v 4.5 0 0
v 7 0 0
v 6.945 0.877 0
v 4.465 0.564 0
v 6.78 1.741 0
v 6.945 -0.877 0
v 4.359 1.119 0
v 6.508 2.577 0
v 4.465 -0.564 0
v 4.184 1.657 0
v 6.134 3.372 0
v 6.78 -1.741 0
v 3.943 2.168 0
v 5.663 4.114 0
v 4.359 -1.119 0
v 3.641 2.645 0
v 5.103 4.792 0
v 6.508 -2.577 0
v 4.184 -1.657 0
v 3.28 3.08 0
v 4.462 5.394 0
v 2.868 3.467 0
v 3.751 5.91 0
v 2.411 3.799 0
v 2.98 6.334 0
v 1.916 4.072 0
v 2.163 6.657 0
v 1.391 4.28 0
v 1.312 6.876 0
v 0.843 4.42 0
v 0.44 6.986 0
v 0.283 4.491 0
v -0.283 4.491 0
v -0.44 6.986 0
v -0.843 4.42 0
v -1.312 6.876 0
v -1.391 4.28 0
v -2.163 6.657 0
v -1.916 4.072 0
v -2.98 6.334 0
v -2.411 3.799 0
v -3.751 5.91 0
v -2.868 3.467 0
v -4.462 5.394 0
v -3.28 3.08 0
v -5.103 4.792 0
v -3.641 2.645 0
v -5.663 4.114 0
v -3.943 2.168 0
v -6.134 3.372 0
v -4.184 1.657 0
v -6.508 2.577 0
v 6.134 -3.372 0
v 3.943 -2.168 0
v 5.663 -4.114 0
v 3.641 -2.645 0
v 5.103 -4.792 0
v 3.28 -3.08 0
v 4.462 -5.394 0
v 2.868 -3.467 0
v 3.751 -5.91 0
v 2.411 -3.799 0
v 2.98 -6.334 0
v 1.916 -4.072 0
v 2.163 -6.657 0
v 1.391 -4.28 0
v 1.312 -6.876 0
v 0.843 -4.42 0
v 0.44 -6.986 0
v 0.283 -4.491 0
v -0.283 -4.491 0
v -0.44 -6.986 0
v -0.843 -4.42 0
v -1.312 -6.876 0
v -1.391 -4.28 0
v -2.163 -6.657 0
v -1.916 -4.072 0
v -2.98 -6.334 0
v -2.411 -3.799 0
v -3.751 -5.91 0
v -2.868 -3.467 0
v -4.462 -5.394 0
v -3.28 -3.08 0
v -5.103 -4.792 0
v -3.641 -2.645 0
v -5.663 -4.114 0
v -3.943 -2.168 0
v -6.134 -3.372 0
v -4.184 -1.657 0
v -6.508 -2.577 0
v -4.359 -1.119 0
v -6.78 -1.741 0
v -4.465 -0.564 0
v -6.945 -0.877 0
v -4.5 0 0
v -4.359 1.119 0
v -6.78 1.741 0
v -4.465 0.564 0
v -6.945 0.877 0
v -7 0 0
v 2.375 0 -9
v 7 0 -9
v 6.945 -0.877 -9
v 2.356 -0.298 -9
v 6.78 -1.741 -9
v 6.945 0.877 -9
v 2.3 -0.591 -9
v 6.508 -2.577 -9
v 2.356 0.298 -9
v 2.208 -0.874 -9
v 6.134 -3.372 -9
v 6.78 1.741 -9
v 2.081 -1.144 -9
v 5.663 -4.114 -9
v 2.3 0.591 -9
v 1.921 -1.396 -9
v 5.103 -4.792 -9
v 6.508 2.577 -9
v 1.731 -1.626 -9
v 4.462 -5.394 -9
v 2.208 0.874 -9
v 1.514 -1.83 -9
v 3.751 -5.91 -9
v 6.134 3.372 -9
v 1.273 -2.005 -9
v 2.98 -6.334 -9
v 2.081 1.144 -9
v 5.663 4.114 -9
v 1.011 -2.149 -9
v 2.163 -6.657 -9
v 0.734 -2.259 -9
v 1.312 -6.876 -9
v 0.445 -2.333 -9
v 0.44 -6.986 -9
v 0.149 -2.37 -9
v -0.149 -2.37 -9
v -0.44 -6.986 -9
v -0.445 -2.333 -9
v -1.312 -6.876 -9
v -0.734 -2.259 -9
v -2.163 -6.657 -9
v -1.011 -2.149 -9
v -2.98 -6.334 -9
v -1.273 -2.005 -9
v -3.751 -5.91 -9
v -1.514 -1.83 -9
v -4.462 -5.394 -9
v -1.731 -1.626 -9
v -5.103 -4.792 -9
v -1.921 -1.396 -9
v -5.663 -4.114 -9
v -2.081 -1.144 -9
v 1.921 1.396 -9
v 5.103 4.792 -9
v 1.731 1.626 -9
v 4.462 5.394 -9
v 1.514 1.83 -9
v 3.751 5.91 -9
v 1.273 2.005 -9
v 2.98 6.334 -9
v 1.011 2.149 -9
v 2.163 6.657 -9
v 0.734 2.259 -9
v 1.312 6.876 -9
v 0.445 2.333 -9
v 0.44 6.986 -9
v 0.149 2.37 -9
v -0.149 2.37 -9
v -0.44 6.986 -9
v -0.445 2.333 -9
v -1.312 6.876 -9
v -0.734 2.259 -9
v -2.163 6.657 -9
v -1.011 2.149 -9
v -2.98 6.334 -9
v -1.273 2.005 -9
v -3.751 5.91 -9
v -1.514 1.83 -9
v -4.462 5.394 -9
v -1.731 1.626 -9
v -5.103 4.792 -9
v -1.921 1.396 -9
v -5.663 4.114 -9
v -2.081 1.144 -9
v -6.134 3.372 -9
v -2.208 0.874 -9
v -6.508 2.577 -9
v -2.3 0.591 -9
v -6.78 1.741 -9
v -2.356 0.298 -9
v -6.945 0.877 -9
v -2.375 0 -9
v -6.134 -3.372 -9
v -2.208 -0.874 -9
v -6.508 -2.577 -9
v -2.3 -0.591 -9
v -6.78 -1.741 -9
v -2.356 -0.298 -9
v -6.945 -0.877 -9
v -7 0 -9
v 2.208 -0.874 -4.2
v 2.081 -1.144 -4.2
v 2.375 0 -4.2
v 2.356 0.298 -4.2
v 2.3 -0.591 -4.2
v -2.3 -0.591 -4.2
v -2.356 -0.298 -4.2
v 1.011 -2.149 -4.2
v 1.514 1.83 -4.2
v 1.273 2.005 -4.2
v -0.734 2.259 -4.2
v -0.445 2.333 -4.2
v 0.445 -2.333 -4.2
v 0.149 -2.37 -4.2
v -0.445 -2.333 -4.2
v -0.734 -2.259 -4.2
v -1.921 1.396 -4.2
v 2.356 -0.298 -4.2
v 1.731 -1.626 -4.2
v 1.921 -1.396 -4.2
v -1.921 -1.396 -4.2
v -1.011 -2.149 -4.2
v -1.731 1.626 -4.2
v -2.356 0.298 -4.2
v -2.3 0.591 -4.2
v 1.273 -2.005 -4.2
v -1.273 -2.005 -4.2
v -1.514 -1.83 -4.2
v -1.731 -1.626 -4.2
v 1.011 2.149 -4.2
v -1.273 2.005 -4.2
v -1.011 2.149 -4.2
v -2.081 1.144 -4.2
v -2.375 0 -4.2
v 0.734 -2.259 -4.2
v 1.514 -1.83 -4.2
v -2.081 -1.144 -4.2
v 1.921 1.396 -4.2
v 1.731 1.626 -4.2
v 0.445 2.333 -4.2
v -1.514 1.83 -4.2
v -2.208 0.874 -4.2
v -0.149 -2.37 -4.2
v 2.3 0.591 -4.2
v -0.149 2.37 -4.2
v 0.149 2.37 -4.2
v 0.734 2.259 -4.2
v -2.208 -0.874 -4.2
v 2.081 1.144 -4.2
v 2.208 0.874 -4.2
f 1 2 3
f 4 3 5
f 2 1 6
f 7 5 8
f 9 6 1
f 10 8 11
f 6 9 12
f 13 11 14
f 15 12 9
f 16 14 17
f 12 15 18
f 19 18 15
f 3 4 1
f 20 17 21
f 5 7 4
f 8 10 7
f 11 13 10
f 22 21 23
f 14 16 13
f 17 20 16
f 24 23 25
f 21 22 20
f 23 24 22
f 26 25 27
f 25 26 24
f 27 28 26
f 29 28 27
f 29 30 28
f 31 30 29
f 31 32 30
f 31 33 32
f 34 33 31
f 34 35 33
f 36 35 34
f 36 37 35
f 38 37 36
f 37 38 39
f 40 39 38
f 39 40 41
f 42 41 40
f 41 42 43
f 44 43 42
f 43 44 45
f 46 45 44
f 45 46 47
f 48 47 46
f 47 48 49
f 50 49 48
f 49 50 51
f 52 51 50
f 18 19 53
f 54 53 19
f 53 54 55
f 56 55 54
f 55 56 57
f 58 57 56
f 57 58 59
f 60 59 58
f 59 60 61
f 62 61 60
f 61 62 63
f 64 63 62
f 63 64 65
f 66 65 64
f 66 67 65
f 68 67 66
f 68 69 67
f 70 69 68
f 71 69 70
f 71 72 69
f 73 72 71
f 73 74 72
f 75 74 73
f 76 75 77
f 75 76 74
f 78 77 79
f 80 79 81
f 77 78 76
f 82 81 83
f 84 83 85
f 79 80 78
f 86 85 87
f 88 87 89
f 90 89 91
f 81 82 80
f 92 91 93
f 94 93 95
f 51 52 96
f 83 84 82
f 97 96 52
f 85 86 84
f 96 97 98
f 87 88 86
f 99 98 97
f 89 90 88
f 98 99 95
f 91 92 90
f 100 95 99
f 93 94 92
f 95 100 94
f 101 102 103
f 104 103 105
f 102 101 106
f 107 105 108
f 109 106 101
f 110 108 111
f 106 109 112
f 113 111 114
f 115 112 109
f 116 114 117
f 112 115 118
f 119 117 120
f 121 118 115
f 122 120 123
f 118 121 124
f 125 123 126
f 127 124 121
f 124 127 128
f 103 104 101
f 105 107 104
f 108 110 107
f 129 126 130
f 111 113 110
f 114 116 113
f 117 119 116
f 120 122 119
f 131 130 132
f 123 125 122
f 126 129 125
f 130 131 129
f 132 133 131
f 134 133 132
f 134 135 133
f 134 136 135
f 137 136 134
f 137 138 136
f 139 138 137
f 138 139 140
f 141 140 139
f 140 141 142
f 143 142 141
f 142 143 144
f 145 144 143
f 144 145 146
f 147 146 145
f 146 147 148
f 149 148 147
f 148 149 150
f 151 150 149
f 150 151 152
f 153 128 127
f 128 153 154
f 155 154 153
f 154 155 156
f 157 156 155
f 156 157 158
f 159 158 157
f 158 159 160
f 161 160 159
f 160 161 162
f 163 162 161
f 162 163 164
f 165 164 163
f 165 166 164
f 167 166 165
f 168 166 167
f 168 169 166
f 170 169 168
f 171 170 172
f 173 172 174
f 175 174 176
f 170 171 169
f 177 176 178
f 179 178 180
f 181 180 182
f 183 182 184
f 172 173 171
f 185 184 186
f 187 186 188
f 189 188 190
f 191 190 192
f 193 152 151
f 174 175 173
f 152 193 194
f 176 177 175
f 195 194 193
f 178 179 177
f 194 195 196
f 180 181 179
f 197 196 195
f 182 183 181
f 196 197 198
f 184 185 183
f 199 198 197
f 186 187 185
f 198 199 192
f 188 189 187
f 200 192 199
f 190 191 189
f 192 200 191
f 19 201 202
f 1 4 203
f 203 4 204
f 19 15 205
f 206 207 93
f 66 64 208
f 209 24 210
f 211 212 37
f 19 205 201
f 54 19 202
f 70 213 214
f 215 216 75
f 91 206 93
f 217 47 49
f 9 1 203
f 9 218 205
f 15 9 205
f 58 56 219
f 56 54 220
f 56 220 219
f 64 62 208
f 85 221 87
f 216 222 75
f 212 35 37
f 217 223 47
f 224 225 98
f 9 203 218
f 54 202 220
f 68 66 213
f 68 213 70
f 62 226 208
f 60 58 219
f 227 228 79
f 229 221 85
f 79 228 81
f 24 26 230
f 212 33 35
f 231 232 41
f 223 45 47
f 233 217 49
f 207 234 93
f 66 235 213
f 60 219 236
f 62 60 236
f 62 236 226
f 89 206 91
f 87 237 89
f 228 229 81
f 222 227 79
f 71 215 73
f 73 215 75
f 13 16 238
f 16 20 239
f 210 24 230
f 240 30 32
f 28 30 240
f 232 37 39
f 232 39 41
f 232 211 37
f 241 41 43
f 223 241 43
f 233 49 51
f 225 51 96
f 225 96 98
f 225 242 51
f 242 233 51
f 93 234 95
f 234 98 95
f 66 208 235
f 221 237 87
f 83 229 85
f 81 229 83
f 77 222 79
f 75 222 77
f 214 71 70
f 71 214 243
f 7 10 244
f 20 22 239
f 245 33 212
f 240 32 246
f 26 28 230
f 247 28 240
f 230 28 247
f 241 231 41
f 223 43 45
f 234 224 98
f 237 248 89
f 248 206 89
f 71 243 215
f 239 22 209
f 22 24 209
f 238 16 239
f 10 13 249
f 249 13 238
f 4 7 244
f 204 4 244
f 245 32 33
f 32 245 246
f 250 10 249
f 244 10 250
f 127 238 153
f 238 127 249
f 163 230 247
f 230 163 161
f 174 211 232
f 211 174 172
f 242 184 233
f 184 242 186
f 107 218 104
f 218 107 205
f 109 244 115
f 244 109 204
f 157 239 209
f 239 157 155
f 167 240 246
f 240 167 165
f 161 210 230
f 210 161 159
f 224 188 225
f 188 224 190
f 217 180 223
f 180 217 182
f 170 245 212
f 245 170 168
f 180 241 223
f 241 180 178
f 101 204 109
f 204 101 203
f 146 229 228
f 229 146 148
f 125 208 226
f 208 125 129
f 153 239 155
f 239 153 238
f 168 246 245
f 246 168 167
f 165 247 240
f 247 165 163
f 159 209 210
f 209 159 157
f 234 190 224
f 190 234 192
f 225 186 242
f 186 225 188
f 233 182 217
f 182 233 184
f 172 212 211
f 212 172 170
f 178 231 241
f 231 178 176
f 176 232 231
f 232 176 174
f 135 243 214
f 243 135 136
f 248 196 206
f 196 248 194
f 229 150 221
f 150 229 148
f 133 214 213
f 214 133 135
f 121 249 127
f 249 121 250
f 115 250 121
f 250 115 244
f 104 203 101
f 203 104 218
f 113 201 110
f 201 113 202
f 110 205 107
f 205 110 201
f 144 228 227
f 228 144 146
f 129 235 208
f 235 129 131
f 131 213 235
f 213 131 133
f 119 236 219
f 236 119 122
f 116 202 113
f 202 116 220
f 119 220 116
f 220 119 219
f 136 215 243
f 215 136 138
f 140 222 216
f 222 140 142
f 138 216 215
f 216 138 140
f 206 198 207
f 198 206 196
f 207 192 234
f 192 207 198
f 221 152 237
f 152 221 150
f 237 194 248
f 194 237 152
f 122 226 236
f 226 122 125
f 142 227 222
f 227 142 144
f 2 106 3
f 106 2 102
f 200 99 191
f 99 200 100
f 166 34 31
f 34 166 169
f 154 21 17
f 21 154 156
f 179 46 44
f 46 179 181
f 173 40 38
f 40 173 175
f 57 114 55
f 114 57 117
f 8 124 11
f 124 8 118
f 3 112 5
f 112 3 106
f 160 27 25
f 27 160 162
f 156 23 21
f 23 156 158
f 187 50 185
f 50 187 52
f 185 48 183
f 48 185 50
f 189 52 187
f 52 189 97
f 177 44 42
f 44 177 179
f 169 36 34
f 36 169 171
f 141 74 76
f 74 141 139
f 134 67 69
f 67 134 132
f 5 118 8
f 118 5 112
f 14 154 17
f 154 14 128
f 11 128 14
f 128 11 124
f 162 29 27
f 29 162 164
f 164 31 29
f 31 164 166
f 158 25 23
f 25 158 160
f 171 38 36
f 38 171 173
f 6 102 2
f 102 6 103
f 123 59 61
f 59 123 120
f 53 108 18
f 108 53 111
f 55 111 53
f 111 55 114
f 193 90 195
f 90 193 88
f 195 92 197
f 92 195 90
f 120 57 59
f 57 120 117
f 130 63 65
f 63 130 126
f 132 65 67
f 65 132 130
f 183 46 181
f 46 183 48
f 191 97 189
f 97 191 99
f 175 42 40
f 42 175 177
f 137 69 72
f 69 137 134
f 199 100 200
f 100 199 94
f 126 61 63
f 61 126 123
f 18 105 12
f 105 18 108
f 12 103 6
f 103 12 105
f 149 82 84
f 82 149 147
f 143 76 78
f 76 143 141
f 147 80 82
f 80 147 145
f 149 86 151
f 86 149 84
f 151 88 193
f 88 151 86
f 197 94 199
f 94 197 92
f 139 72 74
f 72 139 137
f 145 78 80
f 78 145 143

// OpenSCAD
$fn = 50;


difference() {
	union() {
		translate(v = [0, 0, -9.0000000000]) {
			cylinder(h = 9, r = 7.0000000000);
		}
		cylinder(h = 0, r = 17.0000000000);
	}
	union() {
		translate(v = [0, 0, 0]) {
			rotate(a = [0, 0, 0]) {
				difference() {
					union() {
						#translate(v = [0, 0, -9.0000000000]) {
							cylinder(h = 9, r = 2.2500000000);
						}
						#translate(v = [0, 0, -4.2000000000]) {
							cylinder(h = 4.2000000000, r = 7.0000000000, r1 = 2.3750000000, r2 = 4.5000000000);
						}
						#translate(v = [0, 0, -9.0000000000]) {
							cylinder(h = 9, r = 2.3750000000);
						}
						#translate(v = [0, 0, -9.0000000000]) {
							cylinder(h = 9, r = 2.2500000000);
						}
					}
					union();
				}
			}
		}
	}
}
